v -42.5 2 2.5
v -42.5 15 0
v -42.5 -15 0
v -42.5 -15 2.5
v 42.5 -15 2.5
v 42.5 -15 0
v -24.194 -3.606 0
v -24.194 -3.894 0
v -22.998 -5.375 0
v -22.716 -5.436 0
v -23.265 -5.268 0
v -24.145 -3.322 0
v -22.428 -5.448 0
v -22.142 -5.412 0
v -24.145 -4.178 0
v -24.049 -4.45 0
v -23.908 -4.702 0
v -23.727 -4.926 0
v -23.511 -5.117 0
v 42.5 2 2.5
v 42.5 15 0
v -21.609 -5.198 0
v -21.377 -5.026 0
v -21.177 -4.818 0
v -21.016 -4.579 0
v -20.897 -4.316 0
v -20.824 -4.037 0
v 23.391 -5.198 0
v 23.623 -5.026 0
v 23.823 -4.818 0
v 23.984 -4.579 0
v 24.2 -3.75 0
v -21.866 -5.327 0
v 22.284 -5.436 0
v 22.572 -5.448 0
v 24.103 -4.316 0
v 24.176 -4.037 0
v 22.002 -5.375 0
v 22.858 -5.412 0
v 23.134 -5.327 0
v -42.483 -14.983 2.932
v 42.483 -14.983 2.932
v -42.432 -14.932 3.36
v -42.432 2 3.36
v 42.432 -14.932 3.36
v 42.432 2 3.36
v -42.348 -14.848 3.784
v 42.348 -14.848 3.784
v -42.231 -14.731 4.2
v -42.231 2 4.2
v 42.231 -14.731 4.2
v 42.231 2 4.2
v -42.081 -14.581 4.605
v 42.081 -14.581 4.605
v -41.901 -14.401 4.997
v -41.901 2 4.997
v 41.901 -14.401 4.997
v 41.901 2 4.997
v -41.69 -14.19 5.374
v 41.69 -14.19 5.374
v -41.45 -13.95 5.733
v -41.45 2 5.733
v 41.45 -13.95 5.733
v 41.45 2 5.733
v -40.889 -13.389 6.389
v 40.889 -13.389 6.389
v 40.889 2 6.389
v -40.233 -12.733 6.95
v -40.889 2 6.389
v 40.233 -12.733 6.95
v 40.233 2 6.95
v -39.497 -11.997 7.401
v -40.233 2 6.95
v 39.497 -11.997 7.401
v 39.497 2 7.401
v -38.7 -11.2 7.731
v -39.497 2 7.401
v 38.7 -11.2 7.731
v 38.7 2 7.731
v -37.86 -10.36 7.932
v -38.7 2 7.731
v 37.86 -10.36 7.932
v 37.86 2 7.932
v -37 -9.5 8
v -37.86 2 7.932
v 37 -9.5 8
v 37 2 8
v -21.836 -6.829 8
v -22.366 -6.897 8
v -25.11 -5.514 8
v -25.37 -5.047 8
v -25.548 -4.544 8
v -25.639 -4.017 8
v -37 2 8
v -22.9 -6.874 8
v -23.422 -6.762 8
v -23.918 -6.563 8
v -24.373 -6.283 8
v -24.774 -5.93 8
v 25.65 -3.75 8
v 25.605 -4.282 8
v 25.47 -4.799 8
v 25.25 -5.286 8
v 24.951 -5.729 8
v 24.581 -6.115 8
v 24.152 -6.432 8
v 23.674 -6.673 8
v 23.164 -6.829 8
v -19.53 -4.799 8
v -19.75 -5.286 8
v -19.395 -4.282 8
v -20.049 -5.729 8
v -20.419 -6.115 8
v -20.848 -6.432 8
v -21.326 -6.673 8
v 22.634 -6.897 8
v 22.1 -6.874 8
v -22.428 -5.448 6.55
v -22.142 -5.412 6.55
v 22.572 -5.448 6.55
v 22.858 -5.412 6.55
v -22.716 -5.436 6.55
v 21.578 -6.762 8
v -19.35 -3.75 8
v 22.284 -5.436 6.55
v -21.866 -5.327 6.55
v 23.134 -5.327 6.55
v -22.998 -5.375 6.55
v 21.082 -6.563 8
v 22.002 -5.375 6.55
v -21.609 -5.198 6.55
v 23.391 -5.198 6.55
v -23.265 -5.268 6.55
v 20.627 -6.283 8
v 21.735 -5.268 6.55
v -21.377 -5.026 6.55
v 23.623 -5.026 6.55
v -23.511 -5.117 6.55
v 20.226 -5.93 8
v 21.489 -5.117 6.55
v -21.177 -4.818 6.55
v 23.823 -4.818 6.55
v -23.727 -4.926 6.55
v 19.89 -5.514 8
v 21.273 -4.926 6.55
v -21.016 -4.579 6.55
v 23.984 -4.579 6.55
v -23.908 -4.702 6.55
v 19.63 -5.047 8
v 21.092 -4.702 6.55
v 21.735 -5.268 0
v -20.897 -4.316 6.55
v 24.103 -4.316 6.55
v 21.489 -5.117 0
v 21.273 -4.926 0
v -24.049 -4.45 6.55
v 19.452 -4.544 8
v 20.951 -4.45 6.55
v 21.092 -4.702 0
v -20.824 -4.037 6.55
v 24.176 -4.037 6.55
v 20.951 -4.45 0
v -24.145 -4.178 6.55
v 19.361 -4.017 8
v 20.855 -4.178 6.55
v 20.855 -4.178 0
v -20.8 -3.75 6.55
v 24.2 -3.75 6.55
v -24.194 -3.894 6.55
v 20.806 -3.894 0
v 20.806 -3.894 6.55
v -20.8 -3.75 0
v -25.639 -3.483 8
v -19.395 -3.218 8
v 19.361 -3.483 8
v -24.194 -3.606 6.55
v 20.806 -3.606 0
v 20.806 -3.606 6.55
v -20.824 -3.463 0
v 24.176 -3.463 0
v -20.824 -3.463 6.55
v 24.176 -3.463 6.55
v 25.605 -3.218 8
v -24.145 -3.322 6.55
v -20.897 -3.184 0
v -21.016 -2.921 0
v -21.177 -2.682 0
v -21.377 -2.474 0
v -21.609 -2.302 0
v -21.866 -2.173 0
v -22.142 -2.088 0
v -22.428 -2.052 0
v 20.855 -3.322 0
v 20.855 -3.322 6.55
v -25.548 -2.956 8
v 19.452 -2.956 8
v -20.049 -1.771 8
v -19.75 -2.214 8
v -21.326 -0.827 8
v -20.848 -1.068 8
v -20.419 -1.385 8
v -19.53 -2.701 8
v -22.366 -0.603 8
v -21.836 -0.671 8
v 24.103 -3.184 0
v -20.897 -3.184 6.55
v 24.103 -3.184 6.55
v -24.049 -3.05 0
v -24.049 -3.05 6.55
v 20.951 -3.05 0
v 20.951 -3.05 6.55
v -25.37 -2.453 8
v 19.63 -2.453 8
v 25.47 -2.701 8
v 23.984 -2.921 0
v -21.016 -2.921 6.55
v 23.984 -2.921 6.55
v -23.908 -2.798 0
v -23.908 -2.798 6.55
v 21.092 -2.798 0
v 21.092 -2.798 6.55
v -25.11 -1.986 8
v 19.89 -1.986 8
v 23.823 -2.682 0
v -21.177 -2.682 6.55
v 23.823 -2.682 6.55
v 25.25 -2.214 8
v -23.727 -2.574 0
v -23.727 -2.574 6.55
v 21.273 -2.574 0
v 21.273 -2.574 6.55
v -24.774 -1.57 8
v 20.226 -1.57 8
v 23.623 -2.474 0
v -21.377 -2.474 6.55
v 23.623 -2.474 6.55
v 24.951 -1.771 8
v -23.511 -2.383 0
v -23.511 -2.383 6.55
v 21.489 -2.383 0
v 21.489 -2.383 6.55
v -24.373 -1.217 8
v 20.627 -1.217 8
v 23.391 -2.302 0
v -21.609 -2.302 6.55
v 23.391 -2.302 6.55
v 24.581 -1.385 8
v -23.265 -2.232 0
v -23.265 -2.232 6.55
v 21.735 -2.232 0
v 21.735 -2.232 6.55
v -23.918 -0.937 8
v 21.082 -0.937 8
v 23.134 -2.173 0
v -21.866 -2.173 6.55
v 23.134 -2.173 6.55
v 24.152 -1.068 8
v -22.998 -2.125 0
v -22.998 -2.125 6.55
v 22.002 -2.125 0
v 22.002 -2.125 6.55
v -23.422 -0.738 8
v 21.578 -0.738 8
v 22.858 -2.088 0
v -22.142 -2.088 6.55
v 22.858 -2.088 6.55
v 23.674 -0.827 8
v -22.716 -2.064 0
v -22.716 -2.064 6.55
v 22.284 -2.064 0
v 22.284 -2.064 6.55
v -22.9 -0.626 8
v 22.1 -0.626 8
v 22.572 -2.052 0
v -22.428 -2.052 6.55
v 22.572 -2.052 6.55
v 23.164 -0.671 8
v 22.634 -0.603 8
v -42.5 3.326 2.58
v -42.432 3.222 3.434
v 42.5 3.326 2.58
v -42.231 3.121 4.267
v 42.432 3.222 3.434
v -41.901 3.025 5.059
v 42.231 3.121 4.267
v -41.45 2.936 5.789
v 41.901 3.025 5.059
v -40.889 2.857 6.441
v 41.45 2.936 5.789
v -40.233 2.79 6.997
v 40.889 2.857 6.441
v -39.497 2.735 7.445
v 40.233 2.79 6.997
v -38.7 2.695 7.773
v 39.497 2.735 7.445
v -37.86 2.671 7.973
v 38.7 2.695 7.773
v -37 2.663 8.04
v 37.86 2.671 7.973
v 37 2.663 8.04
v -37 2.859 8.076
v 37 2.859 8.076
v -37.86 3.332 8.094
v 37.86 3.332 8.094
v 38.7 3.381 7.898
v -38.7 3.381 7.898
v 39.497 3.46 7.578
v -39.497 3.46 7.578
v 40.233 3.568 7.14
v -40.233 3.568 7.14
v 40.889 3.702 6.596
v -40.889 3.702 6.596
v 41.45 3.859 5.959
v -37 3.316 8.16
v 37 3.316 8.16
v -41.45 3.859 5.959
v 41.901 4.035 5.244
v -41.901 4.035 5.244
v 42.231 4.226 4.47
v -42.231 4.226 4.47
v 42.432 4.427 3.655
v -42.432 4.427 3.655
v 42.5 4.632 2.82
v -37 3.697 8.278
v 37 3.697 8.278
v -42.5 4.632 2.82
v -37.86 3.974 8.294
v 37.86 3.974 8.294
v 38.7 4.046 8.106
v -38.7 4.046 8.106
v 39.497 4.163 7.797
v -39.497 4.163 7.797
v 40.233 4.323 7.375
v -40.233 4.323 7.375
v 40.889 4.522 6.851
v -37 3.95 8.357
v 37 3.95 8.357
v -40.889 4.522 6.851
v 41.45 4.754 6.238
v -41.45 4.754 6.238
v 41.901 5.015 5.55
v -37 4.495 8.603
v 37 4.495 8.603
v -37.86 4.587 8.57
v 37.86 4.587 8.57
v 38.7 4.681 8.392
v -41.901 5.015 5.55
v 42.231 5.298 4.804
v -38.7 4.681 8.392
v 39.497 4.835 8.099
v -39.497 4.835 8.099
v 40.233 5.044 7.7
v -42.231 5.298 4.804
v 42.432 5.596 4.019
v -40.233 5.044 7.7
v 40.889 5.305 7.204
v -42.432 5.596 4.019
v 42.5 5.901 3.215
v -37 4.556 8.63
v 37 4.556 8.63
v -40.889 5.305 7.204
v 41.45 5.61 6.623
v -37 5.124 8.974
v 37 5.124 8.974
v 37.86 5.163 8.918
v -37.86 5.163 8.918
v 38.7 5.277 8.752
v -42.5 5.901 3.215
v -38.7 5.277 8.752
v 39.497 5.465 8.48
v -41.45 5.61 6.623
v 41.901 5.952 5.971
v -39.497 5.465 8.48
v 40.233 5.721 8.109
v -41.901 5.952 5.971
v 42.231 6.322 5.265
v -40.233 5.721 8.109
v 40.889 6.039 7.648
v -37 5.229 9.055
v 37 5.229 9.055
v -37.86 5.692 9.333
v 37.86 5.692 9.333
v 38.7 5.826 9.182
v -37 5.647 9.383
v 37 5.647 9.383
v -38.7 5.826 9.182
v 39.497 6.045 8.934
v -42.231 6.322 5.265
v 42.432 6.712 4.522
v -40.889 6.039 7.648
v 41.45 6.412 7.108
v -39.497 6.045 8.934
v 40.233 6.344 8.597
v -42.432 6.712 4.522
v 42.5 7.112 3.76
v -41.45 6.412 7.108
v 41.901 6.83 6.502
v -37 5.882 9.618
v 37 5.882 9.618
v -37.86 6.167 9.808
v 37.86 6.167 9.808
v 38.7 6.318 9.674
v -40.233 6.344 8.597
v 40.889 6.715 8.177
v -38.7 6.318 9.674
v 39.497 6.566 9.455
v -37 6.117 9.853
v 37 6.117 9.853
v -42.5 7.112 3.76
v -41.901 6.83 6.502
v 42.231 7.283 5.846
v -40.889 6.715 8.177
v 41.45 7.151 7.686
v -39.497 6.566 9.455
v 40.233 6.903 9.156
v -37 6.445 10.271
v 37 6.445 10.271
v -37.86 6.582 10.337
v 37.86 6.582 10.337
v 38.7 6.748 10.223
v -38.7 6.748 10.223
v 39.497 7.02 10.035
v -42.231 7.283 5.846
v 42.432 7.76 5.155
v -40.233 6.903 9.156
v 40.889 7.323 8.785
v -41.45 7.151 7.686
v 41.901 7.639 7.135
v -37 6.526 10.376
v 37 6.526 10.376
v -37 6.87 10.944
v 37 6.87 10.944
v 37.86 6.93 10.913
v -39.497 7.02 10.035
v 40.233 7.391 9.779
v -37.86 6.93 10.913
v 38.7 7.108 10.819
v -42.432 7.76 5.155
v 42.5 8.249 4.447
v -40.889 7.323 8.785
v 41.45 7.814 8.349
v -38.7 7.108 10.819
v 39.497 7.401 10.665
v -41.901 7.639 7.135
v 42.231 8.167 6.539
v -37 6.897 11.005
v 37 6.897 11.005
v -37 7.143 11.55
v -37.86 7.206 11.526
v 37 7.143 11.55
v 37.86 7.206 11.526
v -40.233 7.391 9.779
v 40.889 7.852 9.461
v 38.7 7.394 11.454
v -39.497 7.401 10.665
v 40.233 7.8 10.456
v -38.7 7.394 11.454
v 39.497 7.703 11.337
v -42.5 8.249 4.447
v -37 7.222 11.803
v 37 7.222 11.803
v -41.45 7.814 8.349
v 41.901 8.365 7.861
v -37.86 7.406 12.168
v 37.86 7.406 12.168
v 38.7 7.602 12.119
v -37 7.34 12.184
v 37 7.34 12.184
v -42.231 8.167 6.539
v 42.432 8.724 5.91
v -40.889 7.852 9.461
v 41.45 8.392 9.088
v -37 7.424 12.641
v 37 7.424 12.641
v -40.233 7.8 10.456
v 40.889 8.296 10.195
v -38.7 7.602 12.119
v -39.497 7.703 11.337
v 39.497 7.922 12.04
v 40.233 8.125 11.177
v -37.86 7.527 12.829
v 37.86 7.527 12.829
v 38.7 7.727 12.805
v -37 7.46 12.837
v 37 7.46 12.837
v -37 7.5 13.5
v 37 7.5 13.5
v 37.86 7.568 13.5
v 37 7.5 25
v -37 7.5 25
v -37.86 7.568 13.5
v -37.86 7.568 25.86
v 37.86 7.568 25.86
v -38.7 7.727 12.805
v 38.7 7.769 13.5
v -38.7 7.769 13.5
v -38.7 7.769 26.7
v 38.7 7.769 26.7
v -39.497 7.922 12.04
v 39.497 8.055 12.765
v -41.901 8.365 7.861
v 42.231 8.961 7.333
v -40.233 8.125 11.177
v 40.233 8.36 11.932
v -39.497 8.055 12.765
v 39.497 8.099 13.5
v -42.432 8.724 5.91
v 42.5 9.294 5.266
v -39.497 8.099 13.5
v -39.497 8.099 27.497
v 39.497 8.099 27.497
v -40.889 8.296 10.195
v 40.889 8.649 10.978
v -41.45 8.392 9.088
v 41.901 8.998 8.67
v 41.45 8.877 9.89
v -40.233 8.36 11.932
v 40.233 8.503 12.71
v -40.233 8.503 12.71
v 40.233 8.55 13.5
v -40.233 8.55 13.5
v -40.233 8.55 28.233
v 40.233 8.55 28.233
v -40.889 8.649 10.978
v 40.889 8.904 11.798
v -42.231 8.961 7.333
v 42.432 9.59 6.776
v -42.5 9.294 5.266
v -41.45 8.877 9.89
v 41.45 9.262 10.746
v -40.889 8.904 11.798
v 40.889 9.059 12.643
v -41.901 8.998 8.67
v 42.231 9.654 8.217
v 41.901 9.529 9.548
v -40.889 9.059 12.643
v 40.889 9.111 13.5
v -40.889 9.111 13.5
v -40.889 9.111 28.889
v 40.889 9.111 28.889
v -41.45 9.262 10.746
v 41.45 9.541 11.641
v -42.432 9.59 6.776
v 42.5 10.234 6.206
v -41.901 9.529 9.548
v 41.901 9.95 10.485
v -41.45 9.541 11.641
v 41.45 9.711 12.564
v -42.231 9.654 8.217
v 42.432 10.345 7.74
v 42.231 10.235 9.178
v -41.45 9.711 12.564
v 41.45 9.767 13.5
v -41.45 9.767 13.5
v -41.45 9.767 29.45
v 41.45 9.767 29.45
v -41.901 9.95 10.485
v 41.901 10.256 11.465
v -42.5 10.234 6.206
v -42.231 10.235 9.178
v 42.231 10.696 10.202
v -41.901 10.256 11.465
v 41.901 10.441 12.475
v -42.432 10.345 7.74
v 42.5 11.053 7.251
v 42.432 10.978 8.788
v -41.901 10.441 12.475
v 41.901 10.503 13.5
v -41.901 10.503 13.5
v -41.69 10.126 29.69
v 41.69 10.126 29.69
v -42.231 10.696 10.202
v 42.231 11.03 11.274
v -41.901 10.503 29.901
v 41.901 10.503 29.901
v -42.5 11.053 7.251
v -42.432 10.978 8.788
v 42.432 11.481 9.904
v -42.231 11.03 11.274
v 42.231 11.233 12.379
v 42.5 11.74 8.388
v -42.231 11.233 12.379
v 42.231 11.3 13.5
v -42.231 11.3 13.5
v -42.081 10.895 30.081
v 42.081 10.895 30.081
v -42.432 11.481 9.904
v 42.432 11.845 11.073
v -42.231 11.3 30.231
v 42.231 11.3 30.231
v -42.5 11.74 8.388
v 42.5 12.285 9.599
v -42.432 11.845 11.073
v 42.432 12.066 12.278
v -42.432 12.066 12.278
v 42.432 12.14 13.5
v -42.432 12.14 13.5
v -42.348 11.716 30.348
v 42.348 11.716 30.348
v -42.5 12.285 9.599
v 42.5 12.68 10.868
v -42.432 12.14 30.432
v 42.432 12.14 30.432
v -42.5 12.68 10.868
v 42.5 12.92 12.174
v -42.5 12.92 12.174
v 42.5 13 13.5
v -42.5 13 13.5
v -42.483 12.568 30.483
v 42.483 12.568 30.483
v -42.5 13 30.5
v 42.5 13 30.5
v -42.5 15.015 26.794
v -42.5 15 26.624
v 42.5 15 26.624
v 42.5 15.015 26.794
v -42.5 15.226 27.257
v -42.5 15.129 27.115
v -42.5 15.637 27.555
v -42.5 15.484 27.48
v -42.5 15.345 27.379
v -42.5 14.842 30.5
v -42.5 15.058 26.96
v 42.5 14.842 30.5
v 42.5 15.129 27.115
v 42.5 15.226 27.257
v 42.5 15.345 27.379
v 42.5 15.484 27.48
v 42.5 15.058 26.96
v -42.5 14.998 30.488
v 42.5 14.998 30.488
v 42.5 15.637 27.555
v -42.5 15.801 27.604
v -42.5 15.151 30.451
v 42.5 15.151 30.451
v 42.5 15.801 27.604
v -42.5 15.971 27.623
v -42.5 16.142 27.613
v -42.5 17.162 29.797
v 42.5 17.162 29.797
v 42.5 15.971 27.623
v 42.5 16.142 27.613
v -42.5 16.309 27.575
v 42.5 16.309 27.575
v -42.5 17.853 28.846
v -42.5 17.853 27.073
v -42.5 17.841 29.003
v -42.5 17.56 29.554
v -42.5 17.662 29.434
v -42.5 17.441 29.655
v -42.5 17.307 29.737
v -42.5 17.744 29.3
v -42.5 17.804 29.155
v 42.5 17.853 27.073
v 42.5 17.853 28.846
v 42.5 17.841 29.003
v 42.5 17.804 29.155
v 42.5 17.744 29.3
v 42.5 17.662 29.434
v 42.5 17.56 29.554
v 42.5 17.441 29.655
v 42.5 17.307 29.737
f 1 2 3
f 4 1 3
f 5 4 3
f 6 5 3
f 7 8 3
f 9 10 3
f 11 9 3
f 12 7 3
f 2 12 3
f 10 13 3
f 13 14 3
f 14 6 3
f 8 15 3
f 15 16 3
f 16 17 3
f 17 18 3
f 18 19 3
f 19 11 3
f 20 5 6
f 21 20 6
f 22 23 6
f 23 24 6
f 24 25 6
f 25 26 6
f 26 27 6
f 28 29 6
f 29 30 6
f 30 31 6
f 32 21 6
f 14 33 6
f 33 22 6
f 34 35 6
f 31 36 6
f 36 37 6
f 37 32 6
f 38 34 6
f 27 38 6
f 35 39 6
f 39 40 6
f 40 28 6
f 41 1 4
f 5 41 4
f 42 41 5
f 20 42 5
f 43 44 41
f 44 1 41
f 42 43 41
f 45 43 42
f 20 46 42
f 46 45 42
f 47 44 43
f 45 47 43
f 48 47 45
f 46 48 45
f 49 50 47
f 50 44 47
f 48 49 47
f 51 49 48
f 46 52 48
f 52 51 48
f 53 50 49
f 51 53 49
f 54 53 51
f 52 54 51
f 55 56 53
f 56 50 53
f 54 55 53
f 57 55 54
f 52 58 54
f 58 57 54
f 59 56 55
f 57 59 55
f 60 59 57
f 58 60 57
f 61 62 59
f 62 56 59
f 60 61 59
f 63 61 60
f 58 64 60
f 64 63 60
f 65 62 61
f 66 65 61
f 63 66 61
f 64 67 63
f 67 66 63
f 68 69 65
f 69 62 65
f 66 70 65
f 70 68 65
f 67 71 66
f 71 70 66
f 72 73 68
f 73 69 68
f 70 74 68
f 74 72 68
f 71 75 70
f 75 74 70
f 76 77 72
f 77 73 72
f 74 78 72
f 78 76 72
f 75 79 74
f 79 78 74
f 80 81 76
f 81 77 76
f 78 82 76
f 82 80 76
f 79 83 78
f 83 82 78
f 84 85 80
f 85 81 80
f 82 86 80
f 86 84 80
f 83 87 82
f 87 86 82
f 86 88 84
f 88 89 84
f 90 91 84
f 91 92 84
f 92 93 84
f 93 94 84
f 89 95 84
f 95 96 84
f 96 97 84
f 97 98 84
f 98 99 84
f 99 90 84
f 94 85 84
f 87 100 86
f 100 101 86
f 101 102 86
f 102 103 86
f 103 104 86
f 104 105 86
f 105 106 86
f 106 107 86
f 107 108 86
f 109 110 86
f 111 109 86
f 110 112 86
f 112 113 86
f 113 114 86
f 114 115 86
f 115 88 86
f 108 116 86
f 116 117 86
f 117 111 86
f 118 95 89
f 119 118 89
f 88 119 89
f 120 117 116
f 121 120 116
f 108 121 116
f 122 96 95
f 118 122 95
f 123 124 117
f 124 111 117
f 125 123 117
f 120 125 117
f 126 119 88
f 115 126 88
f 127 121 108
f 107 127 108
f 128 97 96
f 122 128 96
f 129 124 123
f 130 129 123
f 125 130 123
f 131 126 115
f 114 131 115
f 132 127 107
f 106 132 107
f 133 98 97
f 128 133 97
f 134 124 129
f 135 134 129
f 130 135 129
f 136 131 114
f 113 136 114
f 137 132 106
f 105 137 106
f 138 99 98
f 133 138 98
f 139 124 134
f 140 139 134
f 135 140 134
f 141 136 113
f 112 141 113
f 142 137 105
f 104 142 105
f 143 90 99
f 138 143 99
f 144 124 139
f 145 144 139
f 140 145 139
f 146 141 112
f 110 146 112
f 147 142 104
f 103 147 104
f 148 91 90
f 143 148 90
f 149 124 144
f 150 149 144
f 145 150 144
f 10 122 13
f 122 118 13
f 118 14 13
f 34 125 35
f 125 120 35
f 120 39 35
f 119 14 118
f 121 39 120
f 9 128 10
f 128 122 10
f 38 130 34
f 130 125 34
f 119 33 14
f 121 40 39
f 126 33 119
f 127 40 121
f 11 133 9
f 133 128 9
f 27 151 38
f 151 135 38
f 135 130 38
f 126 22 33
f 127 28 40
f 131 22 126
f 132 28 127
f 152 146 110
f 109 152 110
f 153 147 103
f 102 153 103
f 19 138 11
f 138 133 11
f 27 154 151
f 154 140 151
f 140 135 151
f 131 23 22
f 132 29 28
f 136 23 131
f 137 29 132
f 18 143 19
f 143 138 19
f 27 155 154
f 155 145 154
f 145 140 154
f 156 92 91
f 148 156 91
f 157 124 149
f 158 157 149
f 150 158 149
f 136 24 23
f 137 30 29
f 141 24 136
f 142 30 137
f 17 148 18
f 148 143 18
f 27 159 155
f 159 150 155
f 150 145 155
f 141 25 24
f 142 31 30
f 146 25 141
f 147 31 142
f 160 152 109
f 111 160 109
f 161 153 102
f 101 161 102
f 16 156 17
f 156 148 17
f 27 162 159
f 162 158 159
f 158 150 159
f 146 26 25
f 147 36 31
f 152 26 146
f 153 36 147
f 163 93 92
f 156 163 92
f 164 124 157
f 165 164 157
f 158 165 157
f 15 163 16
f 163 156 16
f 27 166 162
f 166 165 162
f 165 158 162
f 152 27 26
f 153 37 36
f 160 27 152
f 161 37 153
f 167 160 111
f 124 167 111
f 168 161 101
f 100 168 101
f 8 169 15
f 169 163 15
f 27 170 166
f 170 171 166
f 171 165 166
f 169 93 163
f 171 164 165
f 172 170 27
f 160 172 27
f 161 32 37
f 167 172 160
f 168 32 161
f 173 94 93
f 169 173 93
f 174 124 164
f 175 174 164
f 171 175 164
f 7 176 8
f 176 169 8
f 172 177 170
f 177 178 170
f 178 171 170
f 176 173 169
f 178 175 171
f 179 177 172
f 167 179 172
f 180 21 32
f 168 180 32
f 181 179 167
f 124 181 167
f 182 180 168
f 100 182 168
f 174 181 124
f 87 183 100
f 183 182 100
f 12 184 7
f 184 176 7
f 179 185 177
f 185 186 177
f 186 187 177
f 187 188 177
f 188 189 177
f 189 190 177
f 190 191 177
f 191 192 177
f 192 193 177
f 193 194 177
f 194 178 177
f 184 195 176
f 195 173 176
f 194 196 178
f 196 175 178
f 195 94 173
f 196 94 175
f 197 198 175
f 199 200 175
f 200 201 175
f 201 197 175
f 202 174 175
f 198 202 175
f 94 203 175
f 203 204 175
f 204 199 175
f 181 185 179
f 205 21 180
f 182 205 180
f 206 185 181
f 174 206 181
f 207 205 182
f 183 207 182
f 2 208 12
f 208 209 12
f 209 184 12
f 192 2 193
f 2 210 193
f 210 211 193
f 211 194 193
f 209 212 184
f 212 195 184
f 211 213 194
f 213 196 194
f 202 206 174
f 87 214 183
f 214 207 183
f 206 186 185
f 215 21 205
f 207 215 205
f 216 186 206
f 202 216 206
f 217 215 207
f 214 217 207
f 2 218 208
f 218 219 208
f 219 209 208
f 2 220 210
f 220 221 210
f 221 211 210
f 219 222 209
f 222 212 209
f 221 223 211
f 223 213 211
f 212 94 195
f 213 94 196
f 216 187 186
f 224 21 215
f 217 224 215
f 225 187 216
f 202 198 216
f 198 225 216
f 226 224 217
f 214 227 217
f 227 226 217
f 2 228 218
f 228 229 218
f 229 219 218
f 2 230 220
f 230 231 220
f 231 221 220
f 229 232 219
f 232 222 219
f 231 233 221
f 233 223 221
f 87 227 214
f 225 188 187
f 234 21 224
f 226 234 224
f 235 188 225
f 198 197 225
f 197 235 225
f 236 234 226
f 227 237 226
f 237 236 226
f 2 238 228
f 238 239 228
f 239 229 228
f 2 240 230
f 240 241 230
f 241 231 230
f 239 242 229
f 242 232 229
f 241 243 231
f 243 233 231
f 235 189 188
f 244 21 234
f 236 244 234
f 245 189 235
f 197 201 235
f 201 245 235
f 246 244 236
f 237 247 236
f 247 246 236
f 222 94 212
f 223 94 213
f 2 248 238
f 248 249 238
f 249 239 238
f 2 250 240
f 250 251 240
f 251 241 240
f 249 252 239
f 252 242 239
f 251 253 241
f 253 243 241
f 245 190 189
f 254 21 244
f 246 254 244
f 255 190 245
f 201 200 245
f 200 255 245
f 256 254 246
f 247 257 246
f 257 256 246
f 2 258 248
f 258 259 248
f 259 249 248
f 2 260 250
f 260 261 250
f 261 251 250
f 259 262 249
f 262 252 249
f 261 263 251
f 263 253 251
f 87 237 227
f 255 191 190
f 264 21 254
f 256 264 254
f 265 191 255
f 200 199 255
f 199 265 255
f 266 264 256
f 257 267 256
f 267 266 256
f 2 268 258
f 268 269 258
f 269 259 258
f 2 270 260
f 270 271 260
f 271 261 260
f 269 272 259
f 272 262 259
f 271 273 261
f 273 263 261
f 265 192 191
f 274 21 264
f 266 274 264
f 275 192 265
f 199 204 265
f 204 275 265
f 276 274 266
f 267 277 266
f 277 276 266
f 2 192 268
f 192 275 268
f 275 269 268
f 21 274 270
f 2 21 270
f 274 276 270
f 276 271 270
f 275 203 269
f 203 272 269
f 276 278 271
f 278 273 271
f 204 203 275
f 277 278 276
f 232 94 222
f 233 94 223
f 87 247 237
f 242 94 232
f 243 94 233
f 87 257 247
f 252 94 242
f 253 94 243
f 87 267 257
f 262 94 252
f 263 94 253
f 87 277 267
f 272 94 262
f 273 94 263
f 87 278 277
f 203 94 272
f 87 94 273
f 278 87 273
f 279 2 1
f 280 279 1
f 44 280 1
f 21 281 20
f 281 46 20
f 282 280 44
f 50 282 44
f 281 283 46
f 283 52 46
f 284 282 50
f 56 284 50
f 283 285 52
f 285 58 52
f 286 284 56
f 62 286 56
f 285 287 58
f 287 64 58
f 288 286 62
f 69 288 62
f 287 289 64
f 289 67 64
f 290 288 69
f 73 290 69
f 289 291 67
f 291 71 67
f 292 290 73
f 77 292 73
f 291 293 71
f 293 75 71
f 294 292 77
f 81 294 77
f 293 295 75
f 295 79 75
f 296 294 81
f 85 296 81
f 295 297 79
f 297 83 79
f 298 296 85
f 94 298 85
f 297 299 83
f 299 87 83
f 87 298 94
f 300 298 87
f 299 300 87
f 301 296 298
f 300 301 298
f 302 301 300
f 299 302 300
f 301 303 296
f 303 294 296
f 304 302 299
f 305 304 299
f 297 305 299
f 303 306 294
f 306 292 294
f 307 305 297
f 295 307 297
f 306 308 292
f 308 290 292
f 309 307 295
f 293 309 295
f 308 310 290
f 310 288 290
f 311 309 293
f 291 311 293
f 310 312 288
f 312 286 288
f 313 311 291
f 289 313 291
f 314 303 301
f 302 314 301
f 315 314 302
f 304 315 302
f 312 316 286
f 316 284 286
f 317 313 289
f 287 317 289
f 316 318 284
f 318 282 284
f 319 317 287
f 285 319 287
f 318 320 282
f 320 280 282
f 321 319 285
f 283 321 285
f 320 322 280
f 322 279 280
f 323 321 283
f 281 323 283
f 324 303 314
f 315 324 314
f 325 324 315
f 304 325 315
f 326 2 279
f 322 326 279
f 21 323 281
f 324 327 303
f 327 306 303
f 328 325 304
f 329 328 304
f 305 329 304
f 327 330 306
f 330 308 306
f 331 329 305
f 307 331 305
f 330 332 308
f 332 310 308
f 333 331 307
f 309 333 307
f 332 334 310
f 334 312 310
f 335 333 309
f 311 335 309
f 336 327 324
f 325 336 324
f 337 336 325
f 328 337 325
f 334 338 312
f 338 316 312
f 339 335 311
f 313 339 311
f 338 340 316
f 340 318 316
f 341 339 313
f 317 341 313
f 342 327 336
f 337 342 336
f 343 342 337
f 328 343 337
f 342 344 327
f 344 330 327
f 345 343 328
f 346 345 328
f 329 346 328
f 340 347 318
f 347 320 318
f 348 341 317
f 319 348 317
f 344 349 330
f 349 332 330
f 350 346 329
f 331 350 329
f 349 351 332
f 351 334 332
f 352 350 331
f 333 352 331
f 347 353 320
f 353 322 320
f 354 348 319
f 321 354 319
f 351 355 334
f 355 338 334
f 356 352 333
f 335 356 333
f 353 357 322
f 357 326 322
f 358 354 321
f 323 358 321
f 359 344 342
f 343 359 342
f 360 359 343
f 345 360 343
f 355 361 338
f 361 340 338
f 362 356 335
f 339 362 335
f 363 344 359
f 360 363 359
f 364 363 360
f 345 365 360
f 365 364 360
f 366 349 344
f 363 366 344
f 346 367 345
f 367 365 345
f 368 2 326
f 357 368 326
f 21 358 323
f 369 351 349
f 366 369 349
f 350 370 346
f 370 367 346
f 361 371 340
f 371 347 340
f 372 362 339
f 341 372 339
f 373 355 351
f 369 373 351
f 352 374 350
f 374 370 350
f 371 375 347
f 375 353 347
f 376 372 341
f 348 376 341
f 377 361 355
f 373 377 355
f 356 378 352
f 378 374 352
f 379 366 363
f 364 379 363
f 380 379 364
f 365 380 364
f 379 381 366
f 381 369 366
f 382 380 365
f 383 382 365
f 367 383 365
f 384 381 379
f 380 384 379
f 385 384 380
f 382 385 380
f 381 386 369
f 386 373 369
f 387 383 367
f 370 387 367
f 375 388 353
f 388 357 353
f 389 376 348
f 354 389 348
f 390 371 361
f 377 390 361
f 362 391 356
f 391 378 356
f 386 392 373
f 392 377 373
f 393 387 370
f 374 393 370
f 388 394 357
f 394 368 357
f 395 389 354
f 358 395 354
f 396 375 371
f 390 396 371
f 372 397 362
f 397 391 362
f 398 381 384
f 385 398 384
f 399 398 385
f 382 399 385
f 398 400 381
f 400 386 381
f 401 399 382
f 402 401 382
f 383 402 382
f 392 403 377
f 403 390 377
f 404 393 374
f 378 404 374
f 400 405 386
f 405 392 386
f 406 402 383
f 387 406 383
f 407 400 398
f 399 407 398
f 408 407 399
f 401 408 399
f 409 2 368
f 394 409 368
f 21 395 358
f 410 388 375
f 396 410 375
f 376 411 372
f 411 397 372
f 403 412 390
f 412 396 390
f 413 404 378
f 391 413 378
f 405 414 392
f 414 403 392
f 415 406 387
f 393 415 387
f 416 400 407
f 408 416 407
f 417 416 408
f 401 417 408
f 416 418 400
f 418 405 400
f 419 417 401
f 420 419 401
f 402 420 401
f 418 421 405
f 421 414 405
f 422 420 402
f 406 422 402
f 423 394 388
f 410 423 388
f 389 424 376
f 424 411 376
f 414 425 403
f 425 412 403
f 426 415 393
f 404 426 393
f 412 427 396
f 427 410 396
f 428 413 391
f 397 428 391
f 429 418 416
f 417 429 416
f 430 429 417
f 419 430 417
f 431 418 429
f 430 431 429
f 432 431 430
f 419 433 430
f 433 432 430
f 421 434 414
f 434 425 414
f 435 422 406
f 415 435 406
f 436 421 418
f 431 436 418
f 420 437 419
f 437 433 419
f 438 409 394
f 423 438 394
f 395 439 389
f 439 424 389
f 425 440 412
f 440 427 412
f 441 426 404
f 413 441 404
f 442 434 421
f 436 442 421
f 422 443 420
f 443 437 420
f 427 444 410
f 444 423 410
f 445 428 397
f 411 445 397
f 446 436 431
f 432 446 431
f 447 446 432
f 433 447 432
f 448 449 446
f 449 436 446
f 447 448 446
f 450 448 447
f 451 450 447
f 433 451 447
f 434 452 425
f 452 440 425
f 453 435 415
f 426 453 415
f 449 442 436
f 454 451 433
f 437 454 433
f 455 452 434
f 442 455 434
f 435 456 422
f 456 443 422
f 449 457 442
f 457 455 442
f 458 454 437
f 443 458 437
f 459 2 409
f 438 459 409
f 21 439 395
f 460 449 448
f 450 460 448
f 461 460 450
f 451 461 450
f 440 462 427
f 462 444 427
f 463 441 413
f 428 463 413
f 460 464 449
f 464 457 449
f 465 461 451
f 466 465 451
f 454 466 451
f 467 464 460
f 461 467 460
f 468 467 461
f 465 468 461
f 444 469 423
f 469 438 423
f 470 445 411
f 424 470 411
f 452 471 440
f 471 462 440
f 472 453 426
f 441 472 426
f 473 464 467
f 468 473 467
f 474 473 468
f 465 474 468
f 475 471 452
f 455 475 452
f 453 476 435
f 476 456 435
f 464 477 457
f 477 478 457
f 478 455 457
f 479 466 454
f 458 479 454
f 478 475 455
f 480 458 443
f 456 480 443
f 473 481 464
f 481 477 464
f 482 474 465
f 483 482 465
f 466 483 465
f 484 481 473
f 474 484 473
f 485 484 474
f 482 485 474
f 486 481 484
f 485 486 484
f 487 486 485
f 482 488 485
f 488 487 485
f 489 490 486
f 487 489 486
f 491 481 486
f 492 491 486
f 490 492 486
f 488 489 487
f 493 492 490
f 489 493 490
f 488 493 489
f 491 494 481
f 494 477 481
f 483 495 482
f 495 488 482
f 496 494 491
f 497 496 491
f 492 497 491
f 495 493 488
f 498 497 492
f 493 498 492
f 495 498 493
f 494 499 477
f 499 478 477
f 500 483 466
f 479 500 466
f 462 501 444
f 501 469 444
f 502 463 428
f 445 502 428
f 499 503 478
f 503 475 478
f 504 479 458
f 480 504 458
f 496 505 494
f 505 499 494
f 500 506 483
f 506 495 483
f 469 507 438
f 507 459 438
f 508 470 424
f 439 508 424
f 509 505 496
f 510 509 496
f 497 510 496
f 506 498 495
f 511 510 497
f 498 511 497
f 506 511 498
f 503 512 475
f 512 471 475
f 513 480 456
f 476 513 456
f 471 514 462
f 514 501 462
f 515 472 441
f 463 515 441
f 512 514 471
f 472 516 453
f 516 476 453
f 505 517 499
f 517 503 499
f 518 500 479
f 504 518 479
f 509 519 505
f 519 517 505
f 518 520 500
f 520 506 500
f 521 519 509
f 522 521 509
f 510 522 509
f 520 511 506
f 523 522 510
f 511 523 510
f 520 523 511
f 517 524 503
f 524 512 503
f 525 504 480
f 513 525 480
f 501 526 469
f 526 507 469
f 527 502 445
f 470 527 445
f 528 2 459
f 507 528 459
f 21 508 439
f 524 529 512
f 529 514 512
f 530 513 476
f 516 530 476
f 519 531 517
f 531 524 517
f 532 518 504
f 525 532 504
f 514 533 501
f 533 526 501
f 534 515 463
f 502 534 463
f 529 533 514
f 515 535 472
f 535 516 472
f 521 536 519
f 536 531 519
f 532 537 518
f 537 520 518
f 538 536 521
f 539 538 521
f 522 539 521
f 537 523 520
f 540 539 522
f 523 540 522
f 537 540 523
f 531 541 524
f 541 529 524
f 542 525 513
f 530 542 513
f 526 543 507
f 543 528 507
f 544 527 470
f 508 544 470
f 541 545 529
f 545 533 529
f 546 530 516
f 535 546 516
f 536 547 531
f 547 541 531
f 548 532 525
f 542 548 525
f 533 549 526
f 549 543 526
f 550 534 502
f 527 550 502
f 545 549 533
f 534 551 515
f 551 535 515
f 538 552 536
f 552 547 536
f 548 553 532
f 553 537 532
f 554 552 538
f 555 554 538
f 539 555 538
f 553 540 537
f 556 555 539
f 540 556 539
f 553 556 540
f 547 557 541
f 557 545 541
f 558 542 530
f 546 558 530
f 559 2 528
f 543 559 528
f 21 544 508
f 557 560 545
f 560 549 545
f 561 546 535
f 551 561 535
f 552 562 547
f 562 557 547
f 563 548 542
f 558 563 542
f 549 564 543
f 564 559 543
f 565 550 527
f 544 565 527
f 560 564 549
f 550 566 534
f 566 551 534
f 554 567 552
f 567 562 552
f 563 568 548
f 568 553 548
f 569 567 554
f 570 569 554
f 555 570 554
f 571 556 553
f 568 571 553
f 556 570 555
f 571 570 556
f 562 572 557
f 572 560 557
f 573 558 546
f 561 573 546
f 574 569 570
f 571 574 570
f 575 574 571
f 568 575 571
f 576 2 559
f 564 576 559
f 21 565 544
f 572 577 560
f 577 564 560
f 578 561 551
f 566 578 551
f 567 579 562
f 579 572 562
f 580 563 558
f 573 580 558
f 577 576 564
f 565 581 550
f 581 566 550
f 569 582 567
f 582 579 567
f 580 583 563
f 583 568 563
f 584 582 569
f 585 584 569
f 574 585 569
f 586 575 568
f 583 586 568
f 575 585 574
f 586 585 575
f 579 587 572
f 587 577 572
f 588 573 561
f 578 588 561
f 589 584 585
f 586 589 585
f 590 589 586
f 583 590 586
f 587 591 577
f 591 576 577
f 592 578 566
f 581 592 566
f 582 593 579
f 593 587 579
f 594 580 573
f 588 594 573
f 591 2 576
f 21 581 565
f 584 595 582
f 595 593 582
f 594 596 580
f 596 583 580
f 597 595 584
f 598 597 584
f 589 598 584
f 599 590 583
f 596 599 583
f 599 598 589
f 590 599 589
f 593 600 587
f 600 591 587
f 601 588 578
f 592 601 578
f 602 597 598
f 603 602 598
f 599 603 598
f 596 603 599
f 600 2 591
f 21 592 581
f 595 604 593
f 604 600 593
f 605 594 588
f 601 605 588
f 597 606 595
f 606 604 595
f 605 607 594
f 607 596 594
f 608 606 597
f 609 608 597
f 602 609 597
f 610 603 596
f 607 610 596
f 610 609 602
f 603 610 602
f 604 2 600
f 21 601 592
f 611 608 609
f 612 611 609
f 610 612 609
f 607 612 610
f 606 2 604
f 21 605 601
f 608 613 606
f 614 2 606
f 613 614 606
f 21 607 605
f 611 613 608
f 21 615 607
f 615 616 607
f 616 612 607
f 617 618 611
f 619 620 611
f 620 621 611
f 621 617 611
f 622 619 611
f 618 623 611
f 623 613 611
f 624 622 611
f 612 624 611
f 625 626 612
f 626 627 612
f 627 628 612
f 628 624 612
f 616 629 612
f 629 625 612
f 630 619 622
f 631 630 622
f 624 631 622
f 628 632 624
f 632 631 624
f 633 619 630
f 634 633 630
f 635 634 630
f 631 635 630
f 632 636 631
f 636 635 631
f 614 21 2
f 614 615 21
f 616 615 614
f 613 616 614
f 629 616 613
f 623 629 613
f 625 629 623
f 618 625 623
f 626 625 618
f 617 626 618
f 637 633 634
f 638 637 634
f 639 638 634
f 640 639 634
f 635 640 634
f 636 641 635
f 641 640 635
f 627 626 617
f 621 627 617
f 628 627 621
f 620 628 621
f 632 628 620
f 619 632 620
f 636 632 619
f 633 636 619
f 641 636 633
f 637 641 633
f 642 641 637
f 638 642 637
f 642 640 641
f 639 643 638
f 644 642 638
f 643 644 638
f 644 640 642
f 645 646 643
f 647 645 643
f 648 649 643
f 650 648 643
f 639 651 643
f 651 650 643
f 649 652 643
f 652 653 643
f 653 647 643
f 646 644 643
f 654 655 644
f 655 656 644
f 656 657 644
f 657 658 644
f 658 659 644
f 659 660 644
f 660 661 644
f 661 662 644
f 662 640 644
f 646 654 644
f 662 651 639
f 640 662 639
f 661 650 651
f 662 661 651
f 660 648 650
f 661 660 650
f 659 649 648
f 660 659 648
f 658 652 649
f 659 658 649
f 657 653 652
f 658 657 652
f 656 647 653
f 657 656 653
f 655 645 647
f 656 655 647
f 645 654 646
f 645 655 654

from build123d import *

# Parameters (mm, degrees)
SKETCH1_W                                       = 85
SKETCH1_H                                       = 30
BOSS_EXTRUDE1_DEPTH                             = 8
SKETCH2_W                                       = 85
SKETCH2_H                                       = 7.5
BOSS_EXTRUDE2_DEPTH                             = 22.5
CSK_FOR_M3_FLAT_HEAD_MACHINE_SCREW1_D           = 3.4
CSK_FOR_M3_FLAT_HEAD_MACHINE_SCREW1_CSINK_D     = 6.3
CSK_FOR_M3_FLAT_HEAD_MACHINE_SCREW1_CSINK_ANGLE = 90
BOSS_EXTRUDE3_DEPTH                             = 85
FILLET1_R                                       = 5.5
FILLET2_R                                       = 1
FILLET3_R                                       = 1


with BuildPart() as part:
    # Sketch1 → Boss-Extrude1 (new body)
    with BuildSketch(Plane.XY):
        Rectangle(SKETCH1_W, SKETCH1_H)
    extrude(amount=BOSS_EXTRUDE1_DEPTH)

    # Sketch2 → Boss-Extrude2 (add)
    with BuildSketch(Plane.XY.offset(8)):
        with Locations((0, 11.25)):
            Rectangle(SKETCH2_W, SKETCH2_H)
    extrude(amount=BOSS_EXTRUDE2_DEPTH)

    # CSK for M3 Flat Head Machine Screw1 (through all)
    with Locations(Plane.XY.offset(8)):
        with Locations((-22.5, -3.75), (22.5, -3.75)):
            CounterSinkHole(CSK_FOR_M3_FLAT_HEAD_MACHINE_SCREW1_D / 2, CSK_FOR_M3_FLAT_HEAD_MACHINE_SCREW1_CSINK_D / 2, counter_sink_angle=CSK_FOR_M3_FLAT_HEAD_MACHINE_SCREW1_CSINK_ANGLE)

    # Sketch7 → Boss-Extrude3 (add)
    with BuildSketch(Plane.ZY.offset(42.5)):
        Polygon((30.5, 15), (29.572949017, 17.853169549), (27.072949017, 17.853169549), (28, 15), align=None)
    extrude(amount=-BOSS_EXTRUDE3_DEPTH)

    # Fillet1
    fillet1_edges = [part.edges().sort_by_distance(p)[0] for p in [
        (0, -15, 8),
        (-42.5, -3.75, 8),
        (0, 7.5, 8),
        (-42.5, 7.5, 19.25),
        (42.5, 7.5, 19.25),
        (0, 7.5, 30.5),
        (42.5, -3.75, 8),
    ]]
    fillet(fillet1_edges, radius=FILLET1_R)

    # Fillet2
    fillet2_edges = [part.edges().sort_by_distance(p)[0] for p in [
        (0, 15, 28),
    ]]
    fillet(fillet2_edges, radius=FILLET2_R)

    # Fillet3
    fillet3_edges = [part.edges().sort_by_distance(p)[0] for p in [
        (0, 15, 30.5),
        (0, 17.853169549, 29.572949017),
    ]]
    fillet(fillet3_edges, radius=FILLET3_R)


solid = part.part
